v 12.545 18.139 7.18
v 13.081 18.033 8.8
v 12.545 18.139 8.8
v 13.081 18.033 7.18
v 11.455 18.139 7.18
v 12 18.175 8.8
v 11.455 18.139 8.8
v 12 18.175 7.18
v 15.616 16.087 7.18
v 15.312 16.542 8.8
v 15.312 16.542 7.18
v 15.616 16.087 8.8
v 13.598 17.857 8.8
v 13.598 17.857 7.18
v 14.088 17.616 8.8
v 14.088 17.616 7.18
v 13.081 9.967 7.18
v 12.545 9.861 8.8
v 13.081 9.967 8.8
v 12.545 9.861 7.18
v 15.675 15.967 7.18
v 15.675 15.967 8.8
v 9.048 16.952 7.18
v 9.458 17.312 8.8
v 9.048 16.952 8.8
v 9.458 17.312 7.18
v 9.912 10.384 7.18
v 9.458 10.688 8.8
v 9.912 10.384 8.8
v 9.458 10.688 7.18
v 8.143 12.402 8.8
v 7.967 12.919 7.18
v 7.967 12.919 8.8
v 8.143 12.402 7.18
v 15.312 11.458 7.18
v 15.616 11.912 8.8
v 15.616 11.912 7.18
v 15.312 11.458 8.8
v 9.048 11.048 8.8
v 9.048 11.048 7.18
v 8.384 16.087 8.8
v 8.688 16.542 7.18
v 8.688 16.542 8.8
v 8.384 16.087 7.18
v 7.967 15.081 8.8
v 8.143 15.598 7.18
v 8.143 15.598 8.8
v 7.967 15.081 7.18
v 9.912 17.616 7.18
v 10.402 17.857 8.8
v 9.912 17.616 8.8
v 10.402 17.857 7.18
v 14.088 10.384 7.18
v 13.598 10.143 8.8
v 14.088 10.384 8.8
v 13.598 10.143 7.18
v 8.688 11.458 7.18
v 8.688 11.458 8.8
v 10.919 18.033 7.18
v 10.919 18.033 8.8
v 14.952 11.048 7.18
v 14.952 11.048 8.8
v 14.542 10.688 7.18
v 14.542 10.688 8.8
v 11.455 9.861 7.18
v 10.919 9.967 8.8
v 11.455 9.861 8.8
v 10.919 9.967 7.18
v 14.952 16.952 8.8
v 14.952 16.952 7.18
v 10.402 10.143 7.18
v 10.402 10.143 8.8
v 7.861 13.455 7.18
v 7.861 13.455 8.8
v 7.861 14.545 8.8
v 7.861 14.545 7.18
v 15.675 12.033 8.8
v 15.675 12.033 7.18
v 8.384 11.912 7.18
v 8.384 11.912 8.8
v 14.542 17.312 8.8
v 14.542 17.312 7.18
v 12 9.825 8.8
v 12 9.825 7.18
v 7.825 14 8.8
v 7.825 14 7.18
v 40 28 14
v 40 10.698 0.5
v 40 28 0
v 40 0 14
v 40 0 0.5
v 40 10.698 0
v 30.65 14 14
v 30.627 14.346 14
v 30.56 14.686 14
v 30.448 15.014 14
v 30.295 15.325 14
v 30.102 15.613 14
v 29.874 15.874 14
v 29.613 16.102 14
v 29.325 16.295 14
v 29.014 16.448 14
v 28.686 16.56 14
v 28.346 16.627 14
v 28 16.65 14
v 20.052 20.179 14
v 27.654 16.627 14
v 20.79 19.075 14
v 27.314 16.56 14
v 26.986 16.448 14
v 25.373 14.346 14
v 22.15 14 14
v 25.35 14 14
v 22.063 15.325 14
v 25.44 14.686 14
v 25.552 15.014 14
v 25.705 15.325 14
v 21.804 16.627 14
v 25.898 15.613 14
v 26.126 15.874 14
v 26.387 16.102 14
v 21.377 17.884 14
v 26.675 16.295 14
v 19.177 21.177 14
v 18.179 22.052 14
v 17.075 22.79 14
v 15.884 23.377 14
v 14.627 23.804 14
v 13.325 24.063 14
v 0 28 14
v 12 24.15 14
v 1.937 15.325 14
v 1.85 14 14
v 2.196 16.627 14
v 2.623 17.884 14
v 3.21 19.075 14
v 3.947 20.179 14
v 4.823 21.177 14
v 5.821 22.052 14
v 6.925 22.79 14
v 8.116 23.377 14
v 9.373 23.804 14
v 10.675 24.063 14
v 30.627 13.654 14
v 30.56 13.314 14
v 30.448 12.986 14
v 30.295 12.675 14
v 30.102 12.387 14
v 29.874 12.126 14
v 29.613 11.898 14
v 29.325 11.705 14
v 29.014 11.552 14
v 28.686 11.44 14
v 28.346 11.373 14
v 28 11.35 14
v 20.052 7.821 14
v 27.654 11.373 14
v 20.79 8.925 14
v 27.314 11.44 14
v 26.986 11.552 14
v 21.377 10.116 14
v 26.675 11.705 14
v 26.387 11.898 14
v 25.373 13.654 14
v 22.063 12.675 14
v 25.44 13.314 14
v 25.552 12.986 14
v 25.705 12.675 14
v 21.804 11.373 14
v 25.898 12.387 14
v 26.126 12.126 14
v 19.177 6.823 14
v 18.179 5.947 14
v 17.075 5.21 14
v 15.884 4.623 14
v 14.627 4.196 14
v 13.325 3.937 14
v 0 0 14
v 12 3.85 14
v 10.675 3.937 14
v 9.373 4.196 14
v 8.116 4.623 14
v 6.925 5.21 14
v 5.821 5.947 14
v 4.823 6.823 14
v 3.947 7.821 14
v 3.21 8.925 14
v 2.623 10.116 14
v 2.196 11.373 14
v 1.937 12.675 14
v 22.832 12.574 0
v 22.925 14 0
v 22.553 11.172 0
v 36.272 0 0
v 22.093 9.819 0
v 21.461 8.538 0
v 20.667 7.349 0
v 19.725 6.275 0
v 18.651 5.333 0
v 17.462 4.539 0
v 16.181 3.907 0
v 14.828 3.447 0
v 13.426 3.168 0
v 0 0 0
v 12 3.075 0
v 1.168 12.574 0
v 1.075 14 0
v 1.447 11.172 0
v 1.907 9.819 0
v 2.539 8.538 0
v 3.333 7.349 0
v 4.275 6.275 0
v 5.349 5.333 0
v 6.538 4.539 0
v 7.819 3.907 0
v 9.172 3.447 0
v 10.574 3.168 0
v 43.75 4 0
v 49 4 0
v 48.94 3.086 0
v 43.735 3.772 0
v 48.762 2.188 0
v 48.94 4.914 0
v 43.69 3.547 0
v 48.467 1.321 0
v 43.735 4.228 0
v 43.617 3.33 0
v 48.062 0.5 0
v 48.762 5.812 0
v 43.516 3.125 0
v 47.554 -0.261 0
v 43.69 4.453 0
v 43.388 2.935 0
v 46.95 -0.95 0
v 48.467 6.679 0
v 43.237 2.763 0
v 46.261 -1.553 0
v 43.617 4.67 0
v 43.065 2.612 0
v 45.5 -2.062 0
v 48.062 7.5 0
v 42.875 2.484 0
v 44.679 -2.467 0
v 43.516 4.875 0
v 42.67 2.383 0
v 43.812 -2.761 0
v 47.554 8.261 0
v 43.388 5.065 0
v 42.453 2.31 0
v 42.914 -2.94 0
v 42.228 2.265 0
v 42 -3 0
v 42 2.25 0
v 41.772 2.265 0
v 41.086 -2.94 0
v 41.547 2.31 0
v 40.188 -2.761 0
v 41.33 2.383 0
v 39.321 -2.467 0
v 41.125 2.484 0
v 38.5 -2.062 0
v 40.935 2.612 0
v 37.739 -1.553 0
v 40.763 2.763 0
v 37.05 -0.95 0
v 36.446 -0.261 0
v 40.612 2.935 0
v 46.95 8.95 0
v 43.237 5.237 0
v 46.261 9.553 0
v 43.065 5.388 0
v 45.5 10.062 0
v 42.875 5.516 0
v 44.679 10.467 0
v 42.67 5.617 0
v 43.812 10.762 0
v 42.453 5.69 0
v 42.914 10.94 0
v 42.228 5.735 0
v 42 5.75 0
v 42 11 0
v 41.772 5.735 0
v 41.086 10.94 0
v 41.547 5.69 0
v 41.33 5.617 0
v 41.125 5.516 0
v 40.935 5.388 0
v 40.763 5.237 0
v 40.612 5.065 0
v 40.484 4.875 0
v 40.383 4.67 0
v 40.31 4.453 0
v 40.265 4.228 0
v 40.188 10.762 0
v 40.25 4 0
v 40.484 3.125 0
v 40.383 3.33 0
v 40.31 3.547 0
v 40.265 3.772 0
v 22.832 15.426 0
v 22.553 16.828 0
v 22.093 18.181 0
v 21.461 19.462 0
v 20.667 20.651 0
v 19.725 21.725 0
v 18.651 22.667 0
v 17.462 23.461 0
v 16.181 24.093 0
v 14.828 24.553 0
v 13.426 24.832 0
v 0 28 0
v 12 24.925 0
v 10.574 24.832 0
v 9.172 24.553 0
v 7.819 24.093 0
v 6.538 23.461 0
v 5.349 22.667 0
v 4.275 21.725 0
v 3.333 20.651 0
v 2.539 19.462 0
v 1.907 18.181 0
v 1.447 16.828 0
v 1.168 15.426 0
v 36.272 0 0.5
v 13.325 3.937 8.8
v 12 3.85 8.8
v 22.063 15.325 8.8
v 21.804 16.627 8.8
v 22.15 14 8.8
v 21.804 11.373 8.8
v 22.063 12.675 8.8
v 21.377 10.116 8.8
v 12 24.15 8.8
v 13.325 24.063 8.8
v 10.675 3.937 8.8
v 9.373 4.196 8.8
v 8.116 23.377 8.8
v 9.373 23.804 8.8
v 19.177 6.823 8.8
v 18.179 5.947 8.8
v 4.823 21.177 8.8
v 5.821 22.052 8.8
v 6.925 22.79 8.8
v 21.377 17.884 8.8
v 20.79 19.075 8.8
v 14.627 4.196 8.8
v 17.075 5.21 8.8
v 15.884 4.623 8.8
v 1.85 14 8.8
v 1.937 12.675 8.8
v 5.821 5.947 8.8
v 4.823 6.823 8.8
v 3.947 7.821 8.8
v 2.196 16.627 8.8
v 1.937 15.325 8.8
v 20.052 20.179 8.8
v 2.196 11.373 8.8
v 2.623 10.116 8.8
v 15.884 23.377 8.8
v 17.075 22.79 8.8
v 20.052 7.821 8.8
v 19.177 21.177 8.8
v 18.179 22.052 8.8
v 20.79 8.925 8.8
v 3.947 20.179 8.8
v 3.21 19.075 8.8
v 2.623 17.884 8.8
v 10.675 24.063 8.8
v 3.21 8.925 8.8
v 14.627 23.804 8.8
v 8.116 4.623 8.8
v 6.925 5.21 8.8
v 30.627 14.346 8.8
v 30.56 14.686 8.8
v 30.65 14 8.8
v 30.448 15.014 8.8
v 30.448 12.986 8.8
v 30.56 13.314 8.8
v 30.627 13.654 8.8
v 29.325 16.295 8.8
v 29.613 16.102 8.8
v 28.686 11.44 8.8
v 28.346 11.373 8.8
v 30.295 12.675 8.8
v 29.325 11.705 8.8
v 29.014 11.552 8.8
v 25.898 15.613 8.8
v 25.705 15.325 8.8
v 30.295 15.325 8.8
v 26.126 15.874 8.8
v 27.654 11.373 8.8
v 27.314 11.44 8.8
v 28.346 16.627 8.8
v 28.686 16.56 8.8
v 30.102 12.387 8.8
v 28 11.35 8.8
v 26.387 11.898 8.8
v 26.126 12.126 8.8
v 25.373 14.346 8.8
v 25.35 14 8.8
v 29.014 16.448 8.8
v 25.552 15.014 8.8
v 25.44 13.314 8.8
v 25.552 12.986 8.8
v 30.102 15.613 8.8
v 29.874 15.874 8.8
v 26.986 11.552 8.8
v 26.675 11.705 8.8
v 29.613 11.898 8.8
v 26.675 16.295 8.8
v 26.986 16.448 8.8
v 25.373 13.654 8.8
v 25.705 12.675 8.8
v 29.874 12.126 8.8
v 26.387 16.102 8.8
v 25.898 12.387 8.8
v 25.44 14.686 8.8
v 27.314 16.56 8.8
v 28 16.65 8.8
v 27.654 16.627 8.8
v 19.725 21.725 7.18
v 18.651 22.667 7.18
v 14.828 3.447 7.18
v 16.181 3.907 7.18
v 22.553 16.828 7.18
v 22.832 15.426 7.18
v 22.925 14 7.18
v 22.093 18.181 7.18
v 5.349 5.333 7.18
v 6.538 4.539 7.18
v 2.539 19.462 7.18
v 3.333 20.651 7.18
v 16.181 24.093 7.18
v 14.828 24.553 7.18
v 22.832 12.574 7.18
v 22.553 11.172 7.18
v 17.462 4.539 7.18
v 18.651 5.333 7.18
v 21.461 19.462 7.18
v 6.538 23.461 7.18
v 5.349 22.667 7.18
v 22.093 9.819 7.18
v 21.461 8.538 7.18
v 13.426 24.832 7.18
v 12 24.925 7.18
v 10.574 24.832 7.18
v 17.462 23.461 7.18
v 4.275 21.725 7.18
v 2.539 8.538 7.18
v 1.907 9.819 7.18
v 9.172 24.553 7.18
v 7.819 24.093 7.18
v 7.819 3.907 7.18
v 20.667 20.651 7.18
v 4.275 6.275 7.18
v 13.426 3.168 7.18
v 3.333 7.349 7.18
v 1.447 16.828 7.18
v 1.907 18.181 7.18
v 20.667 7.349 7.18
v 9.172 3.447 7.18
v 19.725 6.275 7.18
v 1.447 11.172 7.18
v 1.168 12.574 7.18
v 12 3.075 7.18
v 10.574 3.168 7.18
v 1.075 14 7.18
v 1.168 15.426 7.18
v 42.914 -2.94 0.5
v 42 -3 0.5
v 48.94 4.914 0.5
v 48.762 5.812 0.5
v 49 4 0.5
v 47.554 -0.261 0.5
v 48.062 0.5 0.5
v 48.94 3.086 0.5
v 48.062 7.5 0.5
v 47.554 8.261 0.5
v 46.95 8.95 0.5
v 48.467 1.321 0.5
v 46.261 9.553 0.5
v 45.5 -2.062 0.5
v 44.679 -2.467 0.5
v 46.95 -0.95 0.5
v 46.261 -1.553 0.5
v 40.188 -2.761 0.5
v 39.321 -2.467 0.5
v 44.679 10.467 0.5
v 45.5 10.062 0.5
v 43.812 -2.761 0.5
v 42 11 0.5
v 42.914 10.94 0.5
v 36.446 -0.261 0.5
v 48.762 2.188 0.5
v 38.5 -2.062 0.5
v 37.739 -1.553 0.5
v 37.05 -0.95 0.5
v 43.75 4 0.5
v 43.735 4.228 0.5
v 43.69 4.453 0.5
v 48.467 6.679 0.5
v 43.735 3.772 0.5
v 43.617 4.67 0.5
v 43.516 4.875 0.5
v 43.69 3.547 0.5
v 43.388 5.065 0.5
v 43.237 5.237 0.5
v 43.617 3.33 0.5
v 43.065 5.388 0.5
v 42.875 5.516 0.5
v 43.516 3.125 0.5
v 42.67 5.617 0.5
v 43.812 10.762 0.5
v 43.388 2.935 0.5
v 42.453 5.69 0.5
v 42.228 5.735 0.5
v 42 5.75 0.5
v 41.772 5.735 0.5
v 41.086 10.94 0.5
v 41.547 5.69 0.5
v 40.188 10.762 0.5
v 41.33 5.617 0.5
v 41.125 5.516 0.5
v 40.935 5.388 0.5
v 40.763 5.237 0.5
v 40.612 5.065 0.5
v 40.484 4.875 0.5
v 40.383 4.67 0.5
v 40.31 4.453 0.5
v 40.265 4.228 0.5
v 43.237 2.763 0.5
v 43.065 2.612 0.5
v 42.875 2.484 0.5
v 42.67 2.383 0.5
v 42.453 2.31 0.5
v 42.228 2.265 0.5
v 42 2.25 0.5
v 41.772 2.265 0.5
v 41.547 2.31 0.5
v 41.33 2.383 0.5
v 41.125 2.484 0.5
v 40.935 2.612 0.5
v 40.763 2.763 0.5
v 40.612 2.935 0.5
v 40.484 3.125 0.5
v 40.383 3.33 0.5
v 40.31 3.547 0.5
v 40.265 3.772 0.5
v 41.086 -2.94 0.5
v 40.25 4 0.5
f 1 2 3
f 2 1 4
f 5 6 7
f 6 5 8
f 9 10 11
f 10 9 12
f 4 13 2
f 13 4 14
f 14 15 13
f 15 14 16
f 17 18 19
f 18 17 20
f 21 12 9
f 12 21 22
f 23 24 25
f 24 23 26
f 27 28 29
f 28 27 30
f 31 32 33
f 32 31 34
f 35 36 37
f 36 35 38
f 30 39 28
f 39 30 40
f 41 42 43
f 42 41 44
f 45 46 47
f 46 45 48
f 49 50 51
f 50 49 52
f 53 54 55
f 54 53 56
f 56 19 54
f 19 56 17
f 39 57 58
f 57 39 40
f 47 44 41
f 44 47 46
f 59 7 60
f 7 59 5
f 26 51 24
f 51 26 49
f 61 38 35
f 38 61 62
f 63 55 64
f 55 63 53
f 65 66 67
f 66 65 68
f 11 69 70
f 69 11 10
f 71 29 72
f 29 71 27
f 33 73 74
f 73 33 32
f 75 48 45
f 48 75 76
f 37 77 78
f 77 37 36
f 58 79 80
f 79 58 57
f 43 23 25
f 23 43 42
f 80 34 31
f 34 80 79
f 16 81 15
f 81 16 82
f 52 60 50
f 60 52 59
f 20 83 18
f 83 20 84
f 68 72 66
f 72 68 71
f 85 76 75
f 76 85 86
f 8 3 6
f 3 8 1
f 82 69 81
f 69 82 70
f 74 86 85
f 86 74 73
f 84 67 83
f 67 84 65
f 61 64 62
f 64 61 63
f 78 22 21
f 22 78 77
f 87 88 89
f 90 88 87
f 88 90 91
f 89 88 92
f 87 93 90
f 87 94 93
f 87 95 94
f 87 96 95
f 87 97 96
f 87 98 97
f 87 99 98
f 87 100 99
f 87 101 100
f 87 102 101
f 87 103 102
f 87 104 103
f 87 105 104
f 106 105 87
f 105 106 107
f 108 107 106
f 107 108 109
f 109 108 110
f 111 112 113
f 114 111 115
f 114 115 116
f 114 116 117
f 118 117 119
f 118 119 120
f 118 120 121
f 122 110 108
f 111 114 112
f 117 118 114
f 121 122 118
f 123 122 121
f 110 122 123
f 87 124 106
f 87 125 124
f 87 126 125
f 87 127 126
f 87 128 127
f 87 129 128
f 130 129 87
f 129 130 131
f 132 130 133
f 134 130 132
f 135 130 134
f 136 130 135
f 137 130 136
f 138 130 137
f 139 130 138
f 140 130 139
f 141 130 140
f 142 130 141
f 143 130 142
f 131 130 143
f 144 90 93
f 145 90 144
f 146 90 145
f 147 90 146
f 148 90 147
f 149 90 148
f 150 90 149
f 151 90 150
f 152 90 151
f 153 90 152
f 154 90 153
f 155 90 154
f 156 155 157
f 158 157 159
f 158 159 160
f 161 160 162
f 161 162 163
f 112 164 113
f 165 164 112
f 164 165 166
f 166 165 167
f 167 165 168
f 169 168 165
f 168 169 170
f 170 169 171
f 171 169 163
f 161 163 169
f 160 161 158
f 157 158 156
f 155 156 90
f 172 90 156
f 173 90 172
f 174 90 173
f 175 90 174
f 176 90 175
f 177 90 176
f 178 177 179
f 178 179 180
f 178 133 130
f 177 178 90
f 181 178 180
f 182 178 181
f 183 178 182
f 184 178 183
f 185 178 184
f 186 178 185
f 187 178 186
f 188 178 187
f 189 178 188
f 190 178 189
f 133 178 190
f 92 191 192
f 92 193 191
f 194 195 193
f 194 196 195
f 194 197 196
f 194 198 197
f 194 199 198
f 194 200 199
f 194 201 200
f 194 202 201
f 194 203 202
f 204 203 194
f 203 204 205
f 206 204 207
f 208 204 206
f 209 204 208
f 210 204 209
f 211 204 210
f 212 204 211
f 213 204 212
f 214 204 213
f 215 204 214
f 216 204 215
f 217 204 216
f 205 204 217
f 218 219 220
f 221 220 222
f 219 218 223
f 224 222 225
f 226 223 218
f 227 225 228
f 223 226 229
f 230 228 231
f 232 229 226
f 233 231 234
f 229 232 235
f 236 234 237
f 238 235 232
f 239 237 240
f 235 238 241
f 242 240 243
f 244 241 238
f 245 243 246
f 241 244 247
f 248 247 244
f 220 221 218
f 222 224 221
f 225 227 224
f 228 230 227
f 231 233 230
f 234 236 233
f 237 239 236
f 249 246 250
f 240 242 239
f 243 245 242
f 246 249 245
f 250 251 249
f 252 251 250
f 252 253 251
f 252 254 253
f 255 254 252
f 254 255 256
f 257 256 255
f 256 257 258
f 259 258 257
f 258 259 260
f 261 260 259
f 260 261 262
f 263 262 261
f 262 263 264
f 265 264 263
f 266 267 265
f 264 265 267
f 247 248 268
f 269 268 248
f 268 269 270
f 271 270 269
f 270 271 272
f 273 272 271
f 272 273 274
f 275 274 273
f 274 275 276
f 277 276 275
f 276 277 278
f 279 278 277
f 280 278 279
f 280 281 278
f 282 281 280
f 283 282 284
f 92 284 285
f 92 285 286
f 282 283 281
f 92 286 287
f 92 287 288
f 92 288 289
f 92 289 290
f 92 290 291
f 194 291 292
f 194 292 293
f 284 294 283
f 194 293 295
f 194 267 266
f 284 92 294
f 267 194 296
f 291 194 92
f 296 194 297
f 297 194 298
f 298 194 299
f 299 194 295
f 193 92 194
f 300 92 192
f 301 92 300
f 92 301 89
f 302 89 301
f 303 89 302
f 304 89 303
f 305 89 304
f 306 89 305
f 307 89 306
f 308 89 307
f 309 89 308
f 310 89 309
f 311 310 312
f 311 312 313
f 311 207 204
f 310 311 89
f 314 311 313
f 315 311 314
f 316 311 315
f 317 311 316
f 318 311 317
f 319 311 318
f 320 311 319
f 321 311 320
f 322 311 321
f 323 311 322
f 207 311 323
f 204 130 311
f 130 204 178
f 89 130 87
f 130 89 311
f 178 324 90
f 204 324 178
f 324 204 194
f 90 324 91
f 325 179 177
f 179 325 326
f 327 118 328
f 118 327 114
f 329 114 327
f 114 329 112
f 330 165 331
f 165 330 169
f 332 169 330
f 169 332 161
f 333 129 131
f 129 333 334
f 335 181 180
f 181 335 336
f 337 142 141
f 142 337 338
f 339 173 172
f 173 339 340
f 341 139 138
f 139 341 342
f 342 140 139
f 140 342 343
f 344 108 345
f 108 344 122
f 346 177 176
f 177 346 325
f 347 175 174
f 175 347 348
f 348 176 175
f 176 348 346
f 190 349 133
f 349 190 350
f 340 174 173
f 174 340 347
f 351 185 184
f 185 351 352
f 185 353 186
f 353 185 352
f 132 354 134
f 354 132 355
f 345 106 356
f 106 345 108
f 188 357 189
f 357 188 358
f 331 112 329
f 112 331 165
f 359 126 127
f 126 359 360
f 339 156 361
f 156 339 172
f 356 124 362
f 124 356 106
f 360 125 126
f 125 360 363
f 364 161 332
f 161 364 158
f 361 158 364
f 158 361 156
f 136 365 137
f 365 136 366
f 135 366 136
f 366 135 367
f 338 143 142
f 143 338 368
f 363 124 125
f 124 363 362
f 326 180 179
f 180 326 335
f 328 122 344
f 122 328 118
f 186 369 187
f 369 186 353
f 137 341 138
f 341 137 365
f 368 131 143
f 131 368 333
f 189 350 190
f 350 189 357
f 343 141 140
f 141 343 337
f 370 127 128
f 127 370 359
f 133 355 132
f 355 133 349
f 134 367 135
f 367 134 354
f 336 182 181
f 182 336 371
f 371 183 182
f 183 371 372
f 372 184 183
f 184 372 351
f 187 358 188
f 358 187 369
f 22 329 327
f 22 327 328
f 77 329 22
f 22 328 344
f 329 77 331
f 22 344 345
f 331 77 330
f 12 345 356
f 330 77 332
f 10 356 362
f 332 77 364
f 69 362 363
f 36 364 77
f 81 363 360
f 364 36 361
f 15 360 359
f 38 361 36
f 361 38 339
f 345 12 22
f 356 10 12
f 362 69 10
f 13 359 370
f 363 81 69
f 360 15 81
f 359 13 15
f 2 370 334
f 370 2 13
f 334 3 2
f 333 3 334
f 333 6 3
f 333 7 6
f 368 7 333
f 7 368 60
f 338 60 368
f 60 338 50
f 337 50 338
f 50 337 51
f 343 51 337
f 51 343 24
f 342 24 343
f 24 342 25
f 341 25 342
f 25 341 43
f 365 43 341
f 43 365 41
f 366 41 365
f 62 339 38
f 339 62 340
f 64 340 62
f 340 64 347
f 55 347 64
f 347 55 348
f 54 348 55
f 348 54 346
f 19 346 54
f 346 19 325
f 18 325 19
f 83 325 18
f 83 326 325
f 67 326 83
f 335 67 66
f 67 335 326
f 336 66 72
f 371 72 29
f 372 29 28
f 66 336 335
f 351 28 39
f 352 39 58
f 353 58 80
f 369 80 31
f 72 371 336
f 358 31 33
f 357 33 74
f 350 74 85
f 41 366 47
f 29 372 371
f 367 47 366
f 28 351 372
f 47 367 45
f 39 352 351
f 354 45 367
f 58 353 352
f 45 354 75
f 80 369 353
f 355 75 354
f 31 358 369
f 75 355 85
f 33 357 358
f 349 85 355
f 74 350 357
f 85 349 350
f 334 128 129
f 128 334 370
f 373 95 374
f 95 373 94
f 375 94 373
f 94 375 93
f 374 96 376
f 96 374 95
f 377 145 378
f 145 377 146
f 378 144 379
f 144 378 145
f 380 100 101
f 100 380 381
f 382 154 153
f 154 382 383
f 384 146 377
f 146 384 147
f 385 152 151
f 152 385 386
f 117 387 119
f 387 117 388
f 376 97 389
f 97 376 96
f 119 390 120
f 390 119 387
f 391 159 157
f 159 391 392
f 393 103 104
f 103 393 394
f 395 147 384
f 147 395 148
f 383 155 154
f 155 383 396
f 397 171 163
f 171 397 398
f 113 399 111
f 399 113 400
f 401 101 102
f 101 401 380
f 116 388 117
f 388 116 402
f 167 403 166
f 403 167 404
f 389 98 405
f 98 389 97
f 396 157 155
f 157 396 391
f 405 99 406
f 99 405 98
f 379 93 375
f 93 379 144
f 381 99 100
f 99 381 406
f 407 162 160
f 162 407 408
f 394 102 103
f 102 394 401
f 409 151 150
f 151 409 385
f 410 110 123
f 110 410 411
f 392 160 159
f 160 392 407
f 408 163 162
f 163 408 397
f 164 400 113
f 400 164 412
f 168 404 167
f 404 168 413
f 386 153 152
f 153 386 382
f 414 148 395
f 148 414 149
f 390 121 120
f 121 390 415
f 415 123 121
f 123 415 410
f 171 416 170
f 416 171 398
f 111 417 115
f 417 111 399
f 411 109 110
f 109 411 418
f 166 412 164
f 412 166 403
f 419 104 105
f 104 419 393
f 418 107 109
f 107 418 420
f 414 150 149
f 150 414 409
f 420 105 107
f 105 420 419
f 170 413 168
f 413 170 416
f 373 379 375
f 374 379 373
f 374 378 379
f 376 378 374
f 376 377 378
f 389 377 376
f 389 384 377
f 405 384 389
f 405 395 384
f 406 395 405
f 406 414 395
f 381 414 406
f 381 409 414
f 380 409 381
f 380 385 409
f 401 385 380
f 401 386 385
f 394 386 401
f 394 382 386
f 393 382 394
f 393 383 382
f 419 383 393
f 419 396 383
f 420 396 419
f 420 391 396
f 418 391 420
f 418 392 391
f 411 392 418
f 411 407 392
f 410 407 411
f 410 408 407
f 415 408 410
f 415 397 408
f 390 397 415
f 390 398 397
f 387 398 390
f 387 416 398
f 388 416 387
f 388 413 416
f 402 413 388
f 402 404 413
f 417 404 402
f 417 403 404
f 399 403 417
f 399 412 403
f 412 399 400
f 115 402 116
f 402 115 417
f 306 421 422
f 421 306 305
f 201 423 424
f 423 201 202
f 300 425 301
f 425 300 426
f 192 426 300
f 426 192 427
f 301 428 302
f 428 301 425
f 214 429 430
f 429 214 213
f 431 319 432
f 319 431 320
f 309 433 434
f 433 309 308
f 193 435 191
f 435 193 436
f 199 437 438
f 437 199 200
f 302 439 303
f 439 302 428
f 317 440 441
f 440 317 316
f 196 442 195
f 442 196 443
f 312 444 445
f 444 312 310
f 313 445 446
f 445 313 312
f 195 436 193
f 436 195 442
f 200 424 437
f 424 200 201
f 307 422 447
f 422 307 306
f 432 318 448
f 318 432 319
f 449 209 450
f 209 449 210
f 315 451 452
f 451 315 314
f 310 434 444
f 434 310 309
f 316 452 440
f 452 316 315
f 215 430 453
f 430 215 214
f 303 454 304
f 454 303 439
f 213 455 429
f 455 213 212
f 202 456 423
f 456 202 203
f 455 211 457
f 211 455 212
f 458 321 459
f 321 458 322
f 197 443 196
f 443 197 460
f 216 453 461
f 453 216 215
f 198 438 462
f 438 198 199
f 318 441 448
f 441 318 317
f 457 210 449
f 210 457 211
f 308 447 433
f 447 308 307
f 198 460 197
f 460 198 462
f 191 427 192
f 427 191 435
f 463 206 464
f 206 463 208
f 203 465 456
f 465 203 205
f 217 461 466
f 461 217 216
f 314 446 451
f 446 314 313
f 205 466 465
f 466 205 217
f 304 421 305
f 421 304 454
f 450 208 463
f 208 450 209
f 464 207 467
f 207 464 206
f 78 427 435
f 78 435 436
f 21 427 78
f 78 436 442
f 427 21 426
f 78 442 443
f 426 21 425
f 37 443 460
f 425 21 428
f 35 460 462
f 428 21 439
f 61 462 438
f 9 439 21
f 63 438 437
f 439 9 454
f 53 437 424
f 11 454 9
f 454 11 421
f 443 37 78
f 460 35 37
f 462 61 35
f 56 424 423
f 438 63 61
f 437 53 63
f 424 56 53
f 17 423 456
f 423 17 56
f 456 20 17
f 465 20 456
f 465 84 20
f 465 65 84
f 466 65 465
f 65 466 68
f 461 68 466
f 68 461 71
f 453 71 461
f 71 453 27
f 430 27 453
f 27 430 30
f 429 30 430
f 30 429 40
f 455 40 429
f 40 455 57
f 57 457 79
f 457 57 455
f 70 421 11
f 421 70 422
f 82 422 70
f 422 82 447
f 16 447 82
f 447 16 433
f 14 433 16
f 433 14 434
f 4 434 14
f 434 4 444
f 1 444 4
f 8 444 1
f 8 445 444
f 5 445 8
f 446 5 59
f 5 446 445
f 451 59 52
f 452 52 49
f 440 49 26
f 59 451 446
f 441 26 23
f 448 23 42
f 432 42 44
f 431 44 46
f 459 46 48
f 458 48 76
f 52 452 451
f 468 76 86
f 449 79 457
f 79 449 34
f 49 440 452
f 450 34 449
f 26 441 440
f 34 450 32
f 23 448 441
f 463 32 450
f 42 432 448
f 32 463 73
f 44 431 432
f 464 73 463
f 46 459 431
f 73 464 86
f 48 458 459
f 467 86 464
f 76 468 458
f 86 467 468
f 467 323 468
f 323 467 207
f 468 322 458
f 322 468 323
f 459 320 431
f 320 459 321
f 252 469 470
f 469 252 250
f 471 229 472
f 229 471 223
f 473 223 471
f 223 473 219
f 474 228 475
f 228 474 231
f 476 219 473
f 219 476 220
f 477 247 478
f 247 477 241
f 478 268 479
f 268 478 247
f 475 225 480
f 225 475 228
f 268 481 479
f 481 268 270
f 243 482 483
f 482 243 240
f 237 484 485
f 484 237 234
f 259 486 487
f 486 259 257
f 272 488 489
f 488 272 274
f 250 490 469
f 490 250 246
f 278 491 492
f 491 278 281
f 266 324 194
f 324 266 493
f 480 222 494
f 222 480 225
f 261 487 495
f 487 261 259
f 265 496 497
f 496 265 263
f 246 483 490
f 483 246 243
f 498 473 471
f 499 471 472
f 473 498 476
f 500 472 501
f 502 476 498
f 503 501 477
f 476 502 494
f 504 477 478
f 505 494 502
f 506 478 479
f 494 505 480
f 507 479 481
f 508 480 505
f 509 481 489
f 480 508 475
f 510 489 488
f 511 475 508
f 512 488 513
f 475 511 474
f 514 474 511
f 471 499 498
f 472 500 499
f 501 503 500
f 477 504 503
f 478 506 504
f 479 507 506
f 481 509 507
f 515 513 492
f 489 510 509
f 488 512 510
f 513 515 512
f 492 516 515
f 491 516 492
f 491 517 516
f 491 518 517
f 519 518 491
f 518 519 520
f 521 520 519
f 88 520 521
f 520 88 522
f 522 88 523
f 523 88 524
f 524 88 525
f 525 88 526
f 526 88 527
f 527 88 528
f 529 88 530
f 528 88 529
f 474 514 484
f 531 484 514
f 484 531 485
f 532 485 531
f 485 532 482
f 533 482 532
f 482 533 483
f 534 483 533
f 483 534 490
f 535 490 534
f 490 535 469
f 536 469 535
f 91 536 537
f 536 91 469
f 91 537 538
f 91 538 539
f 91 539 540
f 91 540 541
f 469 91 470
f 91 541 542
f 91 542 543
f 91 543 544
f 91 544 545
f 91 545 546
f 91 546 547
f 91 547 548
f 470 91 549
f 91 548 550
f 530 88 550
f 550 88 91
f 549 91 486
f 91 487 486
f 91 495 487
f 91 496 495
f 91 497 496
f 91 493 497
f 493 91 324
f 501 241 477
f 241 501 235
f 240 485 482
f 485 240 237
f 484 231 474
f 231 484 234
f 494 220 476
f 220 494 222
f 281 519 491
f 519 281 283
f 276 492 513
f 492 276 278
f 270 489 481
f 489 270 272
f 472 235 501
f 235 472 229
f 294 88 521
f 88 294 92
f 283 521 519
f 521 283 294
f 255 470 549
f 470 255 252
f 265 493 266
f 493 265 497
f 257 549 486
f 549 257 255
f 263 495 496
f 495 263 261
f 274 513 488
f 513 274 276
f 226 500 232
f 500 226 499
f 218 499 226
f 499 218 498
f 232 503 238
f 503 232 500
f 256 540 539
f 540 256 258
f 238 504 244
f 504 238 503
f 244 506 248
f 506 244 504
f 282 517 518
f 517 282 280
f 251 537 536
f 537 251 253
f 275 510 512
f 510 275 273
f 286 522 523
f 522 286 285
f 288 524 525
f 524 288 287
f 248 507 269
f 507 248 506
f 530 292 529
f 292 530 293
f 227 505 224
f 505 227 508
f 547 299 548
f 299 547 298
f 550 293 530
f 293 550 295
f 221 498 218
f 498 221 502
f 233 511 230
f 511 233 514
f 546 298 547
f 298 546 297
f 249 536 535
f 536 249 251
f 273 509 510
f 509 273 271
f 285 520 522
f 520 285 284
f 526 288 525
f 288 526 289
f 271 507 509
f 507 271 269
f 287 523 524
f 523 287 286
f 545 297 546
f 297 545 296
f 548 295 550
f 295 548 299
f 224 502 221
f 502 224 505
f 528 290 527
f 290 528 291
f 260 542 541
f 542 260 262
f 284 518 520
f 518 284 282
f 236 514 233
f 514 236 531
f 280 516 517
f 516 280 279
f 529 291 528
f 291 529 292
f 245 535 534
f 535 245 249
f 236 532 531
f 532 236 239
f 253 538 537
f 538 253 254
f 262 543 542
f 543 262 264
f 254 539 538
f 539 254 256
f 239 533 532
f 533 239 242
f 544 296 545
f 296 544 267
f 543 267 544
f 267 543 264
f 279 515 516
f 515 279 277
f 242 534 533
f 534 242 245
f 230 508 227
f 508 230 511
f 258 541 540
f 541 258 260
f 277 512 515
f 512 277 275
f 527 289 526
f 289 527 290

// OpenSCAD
// file: parameters.scad
// =============================================================================
// Gen-BE — nightly 2026-10-03 (physics_scorer, honest magpylib watts)
// Clocking 0 deg (magnets N facing S) + D-flat keyed bore + index notch + flip-symmetric braces/bolts.
// Windable 2-piece bobbin; turns = physics_scorer turns_fit; copper only between flanges.
// former_web = 3.60 mm (taller copper vs Gen-BA 2.46) — gap grows with web (honest Bz tradeoff).
// Steel back-iron: two buyable mild-steel discs behind each rotor (score with --back-iron).
// =============================================================================
topology            = "dual_rotor";

// --- Wire / winding (physics_scorer winding-fit) -------------------------------
wire_awg            = 26;
wire_od             = 0.45;     // insulated OD mm (bare 0.405)
fill_realistic      = 0.60;     // insulated-wire area / window, hand-wound layered
turns               = 107;       // = physics_scorer turns_fit (do NOT raise)
coil_former_type    = "bobbin";
coil_core_inset     = 7.90;     // radial copper build: hub = copper boundary inset by this
wind_build_axial    = 0.0;      // nothing proud of the flanges
wind_build_radial   = 0.0;

// --- Bobbin (base + lid) ---------------------------------------------------------
coil_id_r           = 26.00;    // copper boundary sector (over the magnet track)
coil_od_r           = 50.00;
span_deg            = 31.84;    // = pitch - 2*asin((wall+0.85)/coil_id_r) -> >=1.2 mm stator web
former_web          = 3.60;     // copper height between flanges
flange_t            = 0.60;
wall                = 1.00;     // flange lip beyond copper
former_bare_h       = former_web + 2 * flange_t;
coil_envelope_h     = former_bare_h + 2 * wind_build_axial;
tab_w               = 7.0;
tab_len             = 7.0;
tab_h               = former_bare_h / 2;
pin_d               = 1.9;      // 1.75 mm filament locating pin
coil_mount_r        = coil_od_r + 0.2 + 4.0;
lead_y              = 1.6;
lead_slot_w         = 0.9;
lead_groove_d       = 0.6;

// --- Gap -------------------------------------------------------------------------
run_clear           = 0.50;     // rotor face -> flange
gap_spacer_h        = run_clear + wind_build_axial;
m2m                 = coil_envelope_h + 2 * run_clear;

// --- Stator ----------------------------------------------------------------------
coil_stations       = 9;
bay_clear           = 0.25;
stator_thick        = former_bare_h;                        // bobbins flush both faces
stator_od           = 158.0;
shaft_clear_stator  = 14.0;     // stator is static; shaft only

// --- Rotor(s) --------------------------------------------------------------------
magnet_Br           = 1.43;     // N52
halbach_magnetisation = "diametric"; // O5x5 assist magnets MUST be DIAMETRICALLY magnetised (tangential)
rotor_b_same_axis   = true;     // same-index magnets share one axis: N faces S across the gap
large_pocket_d      = 20.3;
small_pocket_d      = 5.3;
pocket_h            = 5.2;
large_n             = 8;
R_large             = 38.0;
R_small_inner       = 24.0;
R_small_mid         = 38.0;
R_small_outer       = 55.0;
carrier_od          = 156.0;
carrier_thick       = 7.5;
hub_h               = 10.0;
hub_od              = 30.0;
rotor_b_offset_deg  = 0.0;      // CLOCKING: magnets directly opposite
shaft_key           = "dflat";
dflat_depth         = 0.5;      // 8 mm shaft with 0.5 mm flat (7.5 across flat)
index_notch_d       = 3.0;

// --- Modular MAX interface (Gen-E family) -----------------------------------------
shaft_bore          = 8.35;
dflat_x             = 4.0 - dflat_depth + (shaft_bore - 8.0) / 2;
bearing_d           = 21.85;
bearing_h           = 7.2;
m3_clear            = 3.5;
bolt_r_inner        = 30.0;
bolt_n_inner        = 4;
bolt_inner_angles   = [22.5, -22.5, 157.5, 202.5];  // between poles, flip-symmetric
flange_bolt_r       = 72.0;
flange_bolt_n       = 6;
brace_r             = 68.0;
brace_d             = 4.3;
brace_n             = 4;
brace_angles        = [45, 135, 225, 315];          // flip-symmetric

spacer_pad_od       = 14.0;
spacer_pad_id       = m3_clear;
endbell_od          = 158.0;
endbell_thick       = 8.0;
endbell_shaft_clear = 10.0;
plate_max_mm        = 410;

$fn = 64;
// main file
// Gen-BE — fit coupon: O20/O5 pockets, 608 seat, D-flat bore, bobbin footprint/bay clearance strip
include <parameters.scad>;
$fn = 48;
// D-flat keyed bore: flat faces +X (angle 0 = magnet pocket 0 = index notch)
module dflat_bore(h) {
    intersection() {
        cylinder(d=shaft_bore, h=h);
        translate([-shaft_bore, -shaft_bore, 0]) cube([shaft_bore + dflat_x, 2*shaft_bore, h]);
    }
}

block_w = 40; block_d = 28; block_h = 14;
difference() {
    cube([block_w, block_d, block_h]);
    translate([12, block_d/2, block_h - pocket_h]) cylinder(d=large_pocket_d, h=pocket_h + 0.2);
    translate([28, block_d/2, block_h - pocket_h]) cylinder(d=small_pocket_d, h=pocket_h + 0.2);
    translate([12, block_d/2, -0.02]) cylinder(d=bearing_d, h=bearing_h);
    translate([12, block_d/2, -0.1]) dflat_bore(block_h + 1);
}
translate([block_w + 2, 4, 0])
    difference() {
        cylinder(d=spacer_pad_od, h=gap_spacer_h);
        translate([0, 0, -0.1]) cylinder(d=spacer_pad_id, h=gap_spacer_h + 0.2);
    }
